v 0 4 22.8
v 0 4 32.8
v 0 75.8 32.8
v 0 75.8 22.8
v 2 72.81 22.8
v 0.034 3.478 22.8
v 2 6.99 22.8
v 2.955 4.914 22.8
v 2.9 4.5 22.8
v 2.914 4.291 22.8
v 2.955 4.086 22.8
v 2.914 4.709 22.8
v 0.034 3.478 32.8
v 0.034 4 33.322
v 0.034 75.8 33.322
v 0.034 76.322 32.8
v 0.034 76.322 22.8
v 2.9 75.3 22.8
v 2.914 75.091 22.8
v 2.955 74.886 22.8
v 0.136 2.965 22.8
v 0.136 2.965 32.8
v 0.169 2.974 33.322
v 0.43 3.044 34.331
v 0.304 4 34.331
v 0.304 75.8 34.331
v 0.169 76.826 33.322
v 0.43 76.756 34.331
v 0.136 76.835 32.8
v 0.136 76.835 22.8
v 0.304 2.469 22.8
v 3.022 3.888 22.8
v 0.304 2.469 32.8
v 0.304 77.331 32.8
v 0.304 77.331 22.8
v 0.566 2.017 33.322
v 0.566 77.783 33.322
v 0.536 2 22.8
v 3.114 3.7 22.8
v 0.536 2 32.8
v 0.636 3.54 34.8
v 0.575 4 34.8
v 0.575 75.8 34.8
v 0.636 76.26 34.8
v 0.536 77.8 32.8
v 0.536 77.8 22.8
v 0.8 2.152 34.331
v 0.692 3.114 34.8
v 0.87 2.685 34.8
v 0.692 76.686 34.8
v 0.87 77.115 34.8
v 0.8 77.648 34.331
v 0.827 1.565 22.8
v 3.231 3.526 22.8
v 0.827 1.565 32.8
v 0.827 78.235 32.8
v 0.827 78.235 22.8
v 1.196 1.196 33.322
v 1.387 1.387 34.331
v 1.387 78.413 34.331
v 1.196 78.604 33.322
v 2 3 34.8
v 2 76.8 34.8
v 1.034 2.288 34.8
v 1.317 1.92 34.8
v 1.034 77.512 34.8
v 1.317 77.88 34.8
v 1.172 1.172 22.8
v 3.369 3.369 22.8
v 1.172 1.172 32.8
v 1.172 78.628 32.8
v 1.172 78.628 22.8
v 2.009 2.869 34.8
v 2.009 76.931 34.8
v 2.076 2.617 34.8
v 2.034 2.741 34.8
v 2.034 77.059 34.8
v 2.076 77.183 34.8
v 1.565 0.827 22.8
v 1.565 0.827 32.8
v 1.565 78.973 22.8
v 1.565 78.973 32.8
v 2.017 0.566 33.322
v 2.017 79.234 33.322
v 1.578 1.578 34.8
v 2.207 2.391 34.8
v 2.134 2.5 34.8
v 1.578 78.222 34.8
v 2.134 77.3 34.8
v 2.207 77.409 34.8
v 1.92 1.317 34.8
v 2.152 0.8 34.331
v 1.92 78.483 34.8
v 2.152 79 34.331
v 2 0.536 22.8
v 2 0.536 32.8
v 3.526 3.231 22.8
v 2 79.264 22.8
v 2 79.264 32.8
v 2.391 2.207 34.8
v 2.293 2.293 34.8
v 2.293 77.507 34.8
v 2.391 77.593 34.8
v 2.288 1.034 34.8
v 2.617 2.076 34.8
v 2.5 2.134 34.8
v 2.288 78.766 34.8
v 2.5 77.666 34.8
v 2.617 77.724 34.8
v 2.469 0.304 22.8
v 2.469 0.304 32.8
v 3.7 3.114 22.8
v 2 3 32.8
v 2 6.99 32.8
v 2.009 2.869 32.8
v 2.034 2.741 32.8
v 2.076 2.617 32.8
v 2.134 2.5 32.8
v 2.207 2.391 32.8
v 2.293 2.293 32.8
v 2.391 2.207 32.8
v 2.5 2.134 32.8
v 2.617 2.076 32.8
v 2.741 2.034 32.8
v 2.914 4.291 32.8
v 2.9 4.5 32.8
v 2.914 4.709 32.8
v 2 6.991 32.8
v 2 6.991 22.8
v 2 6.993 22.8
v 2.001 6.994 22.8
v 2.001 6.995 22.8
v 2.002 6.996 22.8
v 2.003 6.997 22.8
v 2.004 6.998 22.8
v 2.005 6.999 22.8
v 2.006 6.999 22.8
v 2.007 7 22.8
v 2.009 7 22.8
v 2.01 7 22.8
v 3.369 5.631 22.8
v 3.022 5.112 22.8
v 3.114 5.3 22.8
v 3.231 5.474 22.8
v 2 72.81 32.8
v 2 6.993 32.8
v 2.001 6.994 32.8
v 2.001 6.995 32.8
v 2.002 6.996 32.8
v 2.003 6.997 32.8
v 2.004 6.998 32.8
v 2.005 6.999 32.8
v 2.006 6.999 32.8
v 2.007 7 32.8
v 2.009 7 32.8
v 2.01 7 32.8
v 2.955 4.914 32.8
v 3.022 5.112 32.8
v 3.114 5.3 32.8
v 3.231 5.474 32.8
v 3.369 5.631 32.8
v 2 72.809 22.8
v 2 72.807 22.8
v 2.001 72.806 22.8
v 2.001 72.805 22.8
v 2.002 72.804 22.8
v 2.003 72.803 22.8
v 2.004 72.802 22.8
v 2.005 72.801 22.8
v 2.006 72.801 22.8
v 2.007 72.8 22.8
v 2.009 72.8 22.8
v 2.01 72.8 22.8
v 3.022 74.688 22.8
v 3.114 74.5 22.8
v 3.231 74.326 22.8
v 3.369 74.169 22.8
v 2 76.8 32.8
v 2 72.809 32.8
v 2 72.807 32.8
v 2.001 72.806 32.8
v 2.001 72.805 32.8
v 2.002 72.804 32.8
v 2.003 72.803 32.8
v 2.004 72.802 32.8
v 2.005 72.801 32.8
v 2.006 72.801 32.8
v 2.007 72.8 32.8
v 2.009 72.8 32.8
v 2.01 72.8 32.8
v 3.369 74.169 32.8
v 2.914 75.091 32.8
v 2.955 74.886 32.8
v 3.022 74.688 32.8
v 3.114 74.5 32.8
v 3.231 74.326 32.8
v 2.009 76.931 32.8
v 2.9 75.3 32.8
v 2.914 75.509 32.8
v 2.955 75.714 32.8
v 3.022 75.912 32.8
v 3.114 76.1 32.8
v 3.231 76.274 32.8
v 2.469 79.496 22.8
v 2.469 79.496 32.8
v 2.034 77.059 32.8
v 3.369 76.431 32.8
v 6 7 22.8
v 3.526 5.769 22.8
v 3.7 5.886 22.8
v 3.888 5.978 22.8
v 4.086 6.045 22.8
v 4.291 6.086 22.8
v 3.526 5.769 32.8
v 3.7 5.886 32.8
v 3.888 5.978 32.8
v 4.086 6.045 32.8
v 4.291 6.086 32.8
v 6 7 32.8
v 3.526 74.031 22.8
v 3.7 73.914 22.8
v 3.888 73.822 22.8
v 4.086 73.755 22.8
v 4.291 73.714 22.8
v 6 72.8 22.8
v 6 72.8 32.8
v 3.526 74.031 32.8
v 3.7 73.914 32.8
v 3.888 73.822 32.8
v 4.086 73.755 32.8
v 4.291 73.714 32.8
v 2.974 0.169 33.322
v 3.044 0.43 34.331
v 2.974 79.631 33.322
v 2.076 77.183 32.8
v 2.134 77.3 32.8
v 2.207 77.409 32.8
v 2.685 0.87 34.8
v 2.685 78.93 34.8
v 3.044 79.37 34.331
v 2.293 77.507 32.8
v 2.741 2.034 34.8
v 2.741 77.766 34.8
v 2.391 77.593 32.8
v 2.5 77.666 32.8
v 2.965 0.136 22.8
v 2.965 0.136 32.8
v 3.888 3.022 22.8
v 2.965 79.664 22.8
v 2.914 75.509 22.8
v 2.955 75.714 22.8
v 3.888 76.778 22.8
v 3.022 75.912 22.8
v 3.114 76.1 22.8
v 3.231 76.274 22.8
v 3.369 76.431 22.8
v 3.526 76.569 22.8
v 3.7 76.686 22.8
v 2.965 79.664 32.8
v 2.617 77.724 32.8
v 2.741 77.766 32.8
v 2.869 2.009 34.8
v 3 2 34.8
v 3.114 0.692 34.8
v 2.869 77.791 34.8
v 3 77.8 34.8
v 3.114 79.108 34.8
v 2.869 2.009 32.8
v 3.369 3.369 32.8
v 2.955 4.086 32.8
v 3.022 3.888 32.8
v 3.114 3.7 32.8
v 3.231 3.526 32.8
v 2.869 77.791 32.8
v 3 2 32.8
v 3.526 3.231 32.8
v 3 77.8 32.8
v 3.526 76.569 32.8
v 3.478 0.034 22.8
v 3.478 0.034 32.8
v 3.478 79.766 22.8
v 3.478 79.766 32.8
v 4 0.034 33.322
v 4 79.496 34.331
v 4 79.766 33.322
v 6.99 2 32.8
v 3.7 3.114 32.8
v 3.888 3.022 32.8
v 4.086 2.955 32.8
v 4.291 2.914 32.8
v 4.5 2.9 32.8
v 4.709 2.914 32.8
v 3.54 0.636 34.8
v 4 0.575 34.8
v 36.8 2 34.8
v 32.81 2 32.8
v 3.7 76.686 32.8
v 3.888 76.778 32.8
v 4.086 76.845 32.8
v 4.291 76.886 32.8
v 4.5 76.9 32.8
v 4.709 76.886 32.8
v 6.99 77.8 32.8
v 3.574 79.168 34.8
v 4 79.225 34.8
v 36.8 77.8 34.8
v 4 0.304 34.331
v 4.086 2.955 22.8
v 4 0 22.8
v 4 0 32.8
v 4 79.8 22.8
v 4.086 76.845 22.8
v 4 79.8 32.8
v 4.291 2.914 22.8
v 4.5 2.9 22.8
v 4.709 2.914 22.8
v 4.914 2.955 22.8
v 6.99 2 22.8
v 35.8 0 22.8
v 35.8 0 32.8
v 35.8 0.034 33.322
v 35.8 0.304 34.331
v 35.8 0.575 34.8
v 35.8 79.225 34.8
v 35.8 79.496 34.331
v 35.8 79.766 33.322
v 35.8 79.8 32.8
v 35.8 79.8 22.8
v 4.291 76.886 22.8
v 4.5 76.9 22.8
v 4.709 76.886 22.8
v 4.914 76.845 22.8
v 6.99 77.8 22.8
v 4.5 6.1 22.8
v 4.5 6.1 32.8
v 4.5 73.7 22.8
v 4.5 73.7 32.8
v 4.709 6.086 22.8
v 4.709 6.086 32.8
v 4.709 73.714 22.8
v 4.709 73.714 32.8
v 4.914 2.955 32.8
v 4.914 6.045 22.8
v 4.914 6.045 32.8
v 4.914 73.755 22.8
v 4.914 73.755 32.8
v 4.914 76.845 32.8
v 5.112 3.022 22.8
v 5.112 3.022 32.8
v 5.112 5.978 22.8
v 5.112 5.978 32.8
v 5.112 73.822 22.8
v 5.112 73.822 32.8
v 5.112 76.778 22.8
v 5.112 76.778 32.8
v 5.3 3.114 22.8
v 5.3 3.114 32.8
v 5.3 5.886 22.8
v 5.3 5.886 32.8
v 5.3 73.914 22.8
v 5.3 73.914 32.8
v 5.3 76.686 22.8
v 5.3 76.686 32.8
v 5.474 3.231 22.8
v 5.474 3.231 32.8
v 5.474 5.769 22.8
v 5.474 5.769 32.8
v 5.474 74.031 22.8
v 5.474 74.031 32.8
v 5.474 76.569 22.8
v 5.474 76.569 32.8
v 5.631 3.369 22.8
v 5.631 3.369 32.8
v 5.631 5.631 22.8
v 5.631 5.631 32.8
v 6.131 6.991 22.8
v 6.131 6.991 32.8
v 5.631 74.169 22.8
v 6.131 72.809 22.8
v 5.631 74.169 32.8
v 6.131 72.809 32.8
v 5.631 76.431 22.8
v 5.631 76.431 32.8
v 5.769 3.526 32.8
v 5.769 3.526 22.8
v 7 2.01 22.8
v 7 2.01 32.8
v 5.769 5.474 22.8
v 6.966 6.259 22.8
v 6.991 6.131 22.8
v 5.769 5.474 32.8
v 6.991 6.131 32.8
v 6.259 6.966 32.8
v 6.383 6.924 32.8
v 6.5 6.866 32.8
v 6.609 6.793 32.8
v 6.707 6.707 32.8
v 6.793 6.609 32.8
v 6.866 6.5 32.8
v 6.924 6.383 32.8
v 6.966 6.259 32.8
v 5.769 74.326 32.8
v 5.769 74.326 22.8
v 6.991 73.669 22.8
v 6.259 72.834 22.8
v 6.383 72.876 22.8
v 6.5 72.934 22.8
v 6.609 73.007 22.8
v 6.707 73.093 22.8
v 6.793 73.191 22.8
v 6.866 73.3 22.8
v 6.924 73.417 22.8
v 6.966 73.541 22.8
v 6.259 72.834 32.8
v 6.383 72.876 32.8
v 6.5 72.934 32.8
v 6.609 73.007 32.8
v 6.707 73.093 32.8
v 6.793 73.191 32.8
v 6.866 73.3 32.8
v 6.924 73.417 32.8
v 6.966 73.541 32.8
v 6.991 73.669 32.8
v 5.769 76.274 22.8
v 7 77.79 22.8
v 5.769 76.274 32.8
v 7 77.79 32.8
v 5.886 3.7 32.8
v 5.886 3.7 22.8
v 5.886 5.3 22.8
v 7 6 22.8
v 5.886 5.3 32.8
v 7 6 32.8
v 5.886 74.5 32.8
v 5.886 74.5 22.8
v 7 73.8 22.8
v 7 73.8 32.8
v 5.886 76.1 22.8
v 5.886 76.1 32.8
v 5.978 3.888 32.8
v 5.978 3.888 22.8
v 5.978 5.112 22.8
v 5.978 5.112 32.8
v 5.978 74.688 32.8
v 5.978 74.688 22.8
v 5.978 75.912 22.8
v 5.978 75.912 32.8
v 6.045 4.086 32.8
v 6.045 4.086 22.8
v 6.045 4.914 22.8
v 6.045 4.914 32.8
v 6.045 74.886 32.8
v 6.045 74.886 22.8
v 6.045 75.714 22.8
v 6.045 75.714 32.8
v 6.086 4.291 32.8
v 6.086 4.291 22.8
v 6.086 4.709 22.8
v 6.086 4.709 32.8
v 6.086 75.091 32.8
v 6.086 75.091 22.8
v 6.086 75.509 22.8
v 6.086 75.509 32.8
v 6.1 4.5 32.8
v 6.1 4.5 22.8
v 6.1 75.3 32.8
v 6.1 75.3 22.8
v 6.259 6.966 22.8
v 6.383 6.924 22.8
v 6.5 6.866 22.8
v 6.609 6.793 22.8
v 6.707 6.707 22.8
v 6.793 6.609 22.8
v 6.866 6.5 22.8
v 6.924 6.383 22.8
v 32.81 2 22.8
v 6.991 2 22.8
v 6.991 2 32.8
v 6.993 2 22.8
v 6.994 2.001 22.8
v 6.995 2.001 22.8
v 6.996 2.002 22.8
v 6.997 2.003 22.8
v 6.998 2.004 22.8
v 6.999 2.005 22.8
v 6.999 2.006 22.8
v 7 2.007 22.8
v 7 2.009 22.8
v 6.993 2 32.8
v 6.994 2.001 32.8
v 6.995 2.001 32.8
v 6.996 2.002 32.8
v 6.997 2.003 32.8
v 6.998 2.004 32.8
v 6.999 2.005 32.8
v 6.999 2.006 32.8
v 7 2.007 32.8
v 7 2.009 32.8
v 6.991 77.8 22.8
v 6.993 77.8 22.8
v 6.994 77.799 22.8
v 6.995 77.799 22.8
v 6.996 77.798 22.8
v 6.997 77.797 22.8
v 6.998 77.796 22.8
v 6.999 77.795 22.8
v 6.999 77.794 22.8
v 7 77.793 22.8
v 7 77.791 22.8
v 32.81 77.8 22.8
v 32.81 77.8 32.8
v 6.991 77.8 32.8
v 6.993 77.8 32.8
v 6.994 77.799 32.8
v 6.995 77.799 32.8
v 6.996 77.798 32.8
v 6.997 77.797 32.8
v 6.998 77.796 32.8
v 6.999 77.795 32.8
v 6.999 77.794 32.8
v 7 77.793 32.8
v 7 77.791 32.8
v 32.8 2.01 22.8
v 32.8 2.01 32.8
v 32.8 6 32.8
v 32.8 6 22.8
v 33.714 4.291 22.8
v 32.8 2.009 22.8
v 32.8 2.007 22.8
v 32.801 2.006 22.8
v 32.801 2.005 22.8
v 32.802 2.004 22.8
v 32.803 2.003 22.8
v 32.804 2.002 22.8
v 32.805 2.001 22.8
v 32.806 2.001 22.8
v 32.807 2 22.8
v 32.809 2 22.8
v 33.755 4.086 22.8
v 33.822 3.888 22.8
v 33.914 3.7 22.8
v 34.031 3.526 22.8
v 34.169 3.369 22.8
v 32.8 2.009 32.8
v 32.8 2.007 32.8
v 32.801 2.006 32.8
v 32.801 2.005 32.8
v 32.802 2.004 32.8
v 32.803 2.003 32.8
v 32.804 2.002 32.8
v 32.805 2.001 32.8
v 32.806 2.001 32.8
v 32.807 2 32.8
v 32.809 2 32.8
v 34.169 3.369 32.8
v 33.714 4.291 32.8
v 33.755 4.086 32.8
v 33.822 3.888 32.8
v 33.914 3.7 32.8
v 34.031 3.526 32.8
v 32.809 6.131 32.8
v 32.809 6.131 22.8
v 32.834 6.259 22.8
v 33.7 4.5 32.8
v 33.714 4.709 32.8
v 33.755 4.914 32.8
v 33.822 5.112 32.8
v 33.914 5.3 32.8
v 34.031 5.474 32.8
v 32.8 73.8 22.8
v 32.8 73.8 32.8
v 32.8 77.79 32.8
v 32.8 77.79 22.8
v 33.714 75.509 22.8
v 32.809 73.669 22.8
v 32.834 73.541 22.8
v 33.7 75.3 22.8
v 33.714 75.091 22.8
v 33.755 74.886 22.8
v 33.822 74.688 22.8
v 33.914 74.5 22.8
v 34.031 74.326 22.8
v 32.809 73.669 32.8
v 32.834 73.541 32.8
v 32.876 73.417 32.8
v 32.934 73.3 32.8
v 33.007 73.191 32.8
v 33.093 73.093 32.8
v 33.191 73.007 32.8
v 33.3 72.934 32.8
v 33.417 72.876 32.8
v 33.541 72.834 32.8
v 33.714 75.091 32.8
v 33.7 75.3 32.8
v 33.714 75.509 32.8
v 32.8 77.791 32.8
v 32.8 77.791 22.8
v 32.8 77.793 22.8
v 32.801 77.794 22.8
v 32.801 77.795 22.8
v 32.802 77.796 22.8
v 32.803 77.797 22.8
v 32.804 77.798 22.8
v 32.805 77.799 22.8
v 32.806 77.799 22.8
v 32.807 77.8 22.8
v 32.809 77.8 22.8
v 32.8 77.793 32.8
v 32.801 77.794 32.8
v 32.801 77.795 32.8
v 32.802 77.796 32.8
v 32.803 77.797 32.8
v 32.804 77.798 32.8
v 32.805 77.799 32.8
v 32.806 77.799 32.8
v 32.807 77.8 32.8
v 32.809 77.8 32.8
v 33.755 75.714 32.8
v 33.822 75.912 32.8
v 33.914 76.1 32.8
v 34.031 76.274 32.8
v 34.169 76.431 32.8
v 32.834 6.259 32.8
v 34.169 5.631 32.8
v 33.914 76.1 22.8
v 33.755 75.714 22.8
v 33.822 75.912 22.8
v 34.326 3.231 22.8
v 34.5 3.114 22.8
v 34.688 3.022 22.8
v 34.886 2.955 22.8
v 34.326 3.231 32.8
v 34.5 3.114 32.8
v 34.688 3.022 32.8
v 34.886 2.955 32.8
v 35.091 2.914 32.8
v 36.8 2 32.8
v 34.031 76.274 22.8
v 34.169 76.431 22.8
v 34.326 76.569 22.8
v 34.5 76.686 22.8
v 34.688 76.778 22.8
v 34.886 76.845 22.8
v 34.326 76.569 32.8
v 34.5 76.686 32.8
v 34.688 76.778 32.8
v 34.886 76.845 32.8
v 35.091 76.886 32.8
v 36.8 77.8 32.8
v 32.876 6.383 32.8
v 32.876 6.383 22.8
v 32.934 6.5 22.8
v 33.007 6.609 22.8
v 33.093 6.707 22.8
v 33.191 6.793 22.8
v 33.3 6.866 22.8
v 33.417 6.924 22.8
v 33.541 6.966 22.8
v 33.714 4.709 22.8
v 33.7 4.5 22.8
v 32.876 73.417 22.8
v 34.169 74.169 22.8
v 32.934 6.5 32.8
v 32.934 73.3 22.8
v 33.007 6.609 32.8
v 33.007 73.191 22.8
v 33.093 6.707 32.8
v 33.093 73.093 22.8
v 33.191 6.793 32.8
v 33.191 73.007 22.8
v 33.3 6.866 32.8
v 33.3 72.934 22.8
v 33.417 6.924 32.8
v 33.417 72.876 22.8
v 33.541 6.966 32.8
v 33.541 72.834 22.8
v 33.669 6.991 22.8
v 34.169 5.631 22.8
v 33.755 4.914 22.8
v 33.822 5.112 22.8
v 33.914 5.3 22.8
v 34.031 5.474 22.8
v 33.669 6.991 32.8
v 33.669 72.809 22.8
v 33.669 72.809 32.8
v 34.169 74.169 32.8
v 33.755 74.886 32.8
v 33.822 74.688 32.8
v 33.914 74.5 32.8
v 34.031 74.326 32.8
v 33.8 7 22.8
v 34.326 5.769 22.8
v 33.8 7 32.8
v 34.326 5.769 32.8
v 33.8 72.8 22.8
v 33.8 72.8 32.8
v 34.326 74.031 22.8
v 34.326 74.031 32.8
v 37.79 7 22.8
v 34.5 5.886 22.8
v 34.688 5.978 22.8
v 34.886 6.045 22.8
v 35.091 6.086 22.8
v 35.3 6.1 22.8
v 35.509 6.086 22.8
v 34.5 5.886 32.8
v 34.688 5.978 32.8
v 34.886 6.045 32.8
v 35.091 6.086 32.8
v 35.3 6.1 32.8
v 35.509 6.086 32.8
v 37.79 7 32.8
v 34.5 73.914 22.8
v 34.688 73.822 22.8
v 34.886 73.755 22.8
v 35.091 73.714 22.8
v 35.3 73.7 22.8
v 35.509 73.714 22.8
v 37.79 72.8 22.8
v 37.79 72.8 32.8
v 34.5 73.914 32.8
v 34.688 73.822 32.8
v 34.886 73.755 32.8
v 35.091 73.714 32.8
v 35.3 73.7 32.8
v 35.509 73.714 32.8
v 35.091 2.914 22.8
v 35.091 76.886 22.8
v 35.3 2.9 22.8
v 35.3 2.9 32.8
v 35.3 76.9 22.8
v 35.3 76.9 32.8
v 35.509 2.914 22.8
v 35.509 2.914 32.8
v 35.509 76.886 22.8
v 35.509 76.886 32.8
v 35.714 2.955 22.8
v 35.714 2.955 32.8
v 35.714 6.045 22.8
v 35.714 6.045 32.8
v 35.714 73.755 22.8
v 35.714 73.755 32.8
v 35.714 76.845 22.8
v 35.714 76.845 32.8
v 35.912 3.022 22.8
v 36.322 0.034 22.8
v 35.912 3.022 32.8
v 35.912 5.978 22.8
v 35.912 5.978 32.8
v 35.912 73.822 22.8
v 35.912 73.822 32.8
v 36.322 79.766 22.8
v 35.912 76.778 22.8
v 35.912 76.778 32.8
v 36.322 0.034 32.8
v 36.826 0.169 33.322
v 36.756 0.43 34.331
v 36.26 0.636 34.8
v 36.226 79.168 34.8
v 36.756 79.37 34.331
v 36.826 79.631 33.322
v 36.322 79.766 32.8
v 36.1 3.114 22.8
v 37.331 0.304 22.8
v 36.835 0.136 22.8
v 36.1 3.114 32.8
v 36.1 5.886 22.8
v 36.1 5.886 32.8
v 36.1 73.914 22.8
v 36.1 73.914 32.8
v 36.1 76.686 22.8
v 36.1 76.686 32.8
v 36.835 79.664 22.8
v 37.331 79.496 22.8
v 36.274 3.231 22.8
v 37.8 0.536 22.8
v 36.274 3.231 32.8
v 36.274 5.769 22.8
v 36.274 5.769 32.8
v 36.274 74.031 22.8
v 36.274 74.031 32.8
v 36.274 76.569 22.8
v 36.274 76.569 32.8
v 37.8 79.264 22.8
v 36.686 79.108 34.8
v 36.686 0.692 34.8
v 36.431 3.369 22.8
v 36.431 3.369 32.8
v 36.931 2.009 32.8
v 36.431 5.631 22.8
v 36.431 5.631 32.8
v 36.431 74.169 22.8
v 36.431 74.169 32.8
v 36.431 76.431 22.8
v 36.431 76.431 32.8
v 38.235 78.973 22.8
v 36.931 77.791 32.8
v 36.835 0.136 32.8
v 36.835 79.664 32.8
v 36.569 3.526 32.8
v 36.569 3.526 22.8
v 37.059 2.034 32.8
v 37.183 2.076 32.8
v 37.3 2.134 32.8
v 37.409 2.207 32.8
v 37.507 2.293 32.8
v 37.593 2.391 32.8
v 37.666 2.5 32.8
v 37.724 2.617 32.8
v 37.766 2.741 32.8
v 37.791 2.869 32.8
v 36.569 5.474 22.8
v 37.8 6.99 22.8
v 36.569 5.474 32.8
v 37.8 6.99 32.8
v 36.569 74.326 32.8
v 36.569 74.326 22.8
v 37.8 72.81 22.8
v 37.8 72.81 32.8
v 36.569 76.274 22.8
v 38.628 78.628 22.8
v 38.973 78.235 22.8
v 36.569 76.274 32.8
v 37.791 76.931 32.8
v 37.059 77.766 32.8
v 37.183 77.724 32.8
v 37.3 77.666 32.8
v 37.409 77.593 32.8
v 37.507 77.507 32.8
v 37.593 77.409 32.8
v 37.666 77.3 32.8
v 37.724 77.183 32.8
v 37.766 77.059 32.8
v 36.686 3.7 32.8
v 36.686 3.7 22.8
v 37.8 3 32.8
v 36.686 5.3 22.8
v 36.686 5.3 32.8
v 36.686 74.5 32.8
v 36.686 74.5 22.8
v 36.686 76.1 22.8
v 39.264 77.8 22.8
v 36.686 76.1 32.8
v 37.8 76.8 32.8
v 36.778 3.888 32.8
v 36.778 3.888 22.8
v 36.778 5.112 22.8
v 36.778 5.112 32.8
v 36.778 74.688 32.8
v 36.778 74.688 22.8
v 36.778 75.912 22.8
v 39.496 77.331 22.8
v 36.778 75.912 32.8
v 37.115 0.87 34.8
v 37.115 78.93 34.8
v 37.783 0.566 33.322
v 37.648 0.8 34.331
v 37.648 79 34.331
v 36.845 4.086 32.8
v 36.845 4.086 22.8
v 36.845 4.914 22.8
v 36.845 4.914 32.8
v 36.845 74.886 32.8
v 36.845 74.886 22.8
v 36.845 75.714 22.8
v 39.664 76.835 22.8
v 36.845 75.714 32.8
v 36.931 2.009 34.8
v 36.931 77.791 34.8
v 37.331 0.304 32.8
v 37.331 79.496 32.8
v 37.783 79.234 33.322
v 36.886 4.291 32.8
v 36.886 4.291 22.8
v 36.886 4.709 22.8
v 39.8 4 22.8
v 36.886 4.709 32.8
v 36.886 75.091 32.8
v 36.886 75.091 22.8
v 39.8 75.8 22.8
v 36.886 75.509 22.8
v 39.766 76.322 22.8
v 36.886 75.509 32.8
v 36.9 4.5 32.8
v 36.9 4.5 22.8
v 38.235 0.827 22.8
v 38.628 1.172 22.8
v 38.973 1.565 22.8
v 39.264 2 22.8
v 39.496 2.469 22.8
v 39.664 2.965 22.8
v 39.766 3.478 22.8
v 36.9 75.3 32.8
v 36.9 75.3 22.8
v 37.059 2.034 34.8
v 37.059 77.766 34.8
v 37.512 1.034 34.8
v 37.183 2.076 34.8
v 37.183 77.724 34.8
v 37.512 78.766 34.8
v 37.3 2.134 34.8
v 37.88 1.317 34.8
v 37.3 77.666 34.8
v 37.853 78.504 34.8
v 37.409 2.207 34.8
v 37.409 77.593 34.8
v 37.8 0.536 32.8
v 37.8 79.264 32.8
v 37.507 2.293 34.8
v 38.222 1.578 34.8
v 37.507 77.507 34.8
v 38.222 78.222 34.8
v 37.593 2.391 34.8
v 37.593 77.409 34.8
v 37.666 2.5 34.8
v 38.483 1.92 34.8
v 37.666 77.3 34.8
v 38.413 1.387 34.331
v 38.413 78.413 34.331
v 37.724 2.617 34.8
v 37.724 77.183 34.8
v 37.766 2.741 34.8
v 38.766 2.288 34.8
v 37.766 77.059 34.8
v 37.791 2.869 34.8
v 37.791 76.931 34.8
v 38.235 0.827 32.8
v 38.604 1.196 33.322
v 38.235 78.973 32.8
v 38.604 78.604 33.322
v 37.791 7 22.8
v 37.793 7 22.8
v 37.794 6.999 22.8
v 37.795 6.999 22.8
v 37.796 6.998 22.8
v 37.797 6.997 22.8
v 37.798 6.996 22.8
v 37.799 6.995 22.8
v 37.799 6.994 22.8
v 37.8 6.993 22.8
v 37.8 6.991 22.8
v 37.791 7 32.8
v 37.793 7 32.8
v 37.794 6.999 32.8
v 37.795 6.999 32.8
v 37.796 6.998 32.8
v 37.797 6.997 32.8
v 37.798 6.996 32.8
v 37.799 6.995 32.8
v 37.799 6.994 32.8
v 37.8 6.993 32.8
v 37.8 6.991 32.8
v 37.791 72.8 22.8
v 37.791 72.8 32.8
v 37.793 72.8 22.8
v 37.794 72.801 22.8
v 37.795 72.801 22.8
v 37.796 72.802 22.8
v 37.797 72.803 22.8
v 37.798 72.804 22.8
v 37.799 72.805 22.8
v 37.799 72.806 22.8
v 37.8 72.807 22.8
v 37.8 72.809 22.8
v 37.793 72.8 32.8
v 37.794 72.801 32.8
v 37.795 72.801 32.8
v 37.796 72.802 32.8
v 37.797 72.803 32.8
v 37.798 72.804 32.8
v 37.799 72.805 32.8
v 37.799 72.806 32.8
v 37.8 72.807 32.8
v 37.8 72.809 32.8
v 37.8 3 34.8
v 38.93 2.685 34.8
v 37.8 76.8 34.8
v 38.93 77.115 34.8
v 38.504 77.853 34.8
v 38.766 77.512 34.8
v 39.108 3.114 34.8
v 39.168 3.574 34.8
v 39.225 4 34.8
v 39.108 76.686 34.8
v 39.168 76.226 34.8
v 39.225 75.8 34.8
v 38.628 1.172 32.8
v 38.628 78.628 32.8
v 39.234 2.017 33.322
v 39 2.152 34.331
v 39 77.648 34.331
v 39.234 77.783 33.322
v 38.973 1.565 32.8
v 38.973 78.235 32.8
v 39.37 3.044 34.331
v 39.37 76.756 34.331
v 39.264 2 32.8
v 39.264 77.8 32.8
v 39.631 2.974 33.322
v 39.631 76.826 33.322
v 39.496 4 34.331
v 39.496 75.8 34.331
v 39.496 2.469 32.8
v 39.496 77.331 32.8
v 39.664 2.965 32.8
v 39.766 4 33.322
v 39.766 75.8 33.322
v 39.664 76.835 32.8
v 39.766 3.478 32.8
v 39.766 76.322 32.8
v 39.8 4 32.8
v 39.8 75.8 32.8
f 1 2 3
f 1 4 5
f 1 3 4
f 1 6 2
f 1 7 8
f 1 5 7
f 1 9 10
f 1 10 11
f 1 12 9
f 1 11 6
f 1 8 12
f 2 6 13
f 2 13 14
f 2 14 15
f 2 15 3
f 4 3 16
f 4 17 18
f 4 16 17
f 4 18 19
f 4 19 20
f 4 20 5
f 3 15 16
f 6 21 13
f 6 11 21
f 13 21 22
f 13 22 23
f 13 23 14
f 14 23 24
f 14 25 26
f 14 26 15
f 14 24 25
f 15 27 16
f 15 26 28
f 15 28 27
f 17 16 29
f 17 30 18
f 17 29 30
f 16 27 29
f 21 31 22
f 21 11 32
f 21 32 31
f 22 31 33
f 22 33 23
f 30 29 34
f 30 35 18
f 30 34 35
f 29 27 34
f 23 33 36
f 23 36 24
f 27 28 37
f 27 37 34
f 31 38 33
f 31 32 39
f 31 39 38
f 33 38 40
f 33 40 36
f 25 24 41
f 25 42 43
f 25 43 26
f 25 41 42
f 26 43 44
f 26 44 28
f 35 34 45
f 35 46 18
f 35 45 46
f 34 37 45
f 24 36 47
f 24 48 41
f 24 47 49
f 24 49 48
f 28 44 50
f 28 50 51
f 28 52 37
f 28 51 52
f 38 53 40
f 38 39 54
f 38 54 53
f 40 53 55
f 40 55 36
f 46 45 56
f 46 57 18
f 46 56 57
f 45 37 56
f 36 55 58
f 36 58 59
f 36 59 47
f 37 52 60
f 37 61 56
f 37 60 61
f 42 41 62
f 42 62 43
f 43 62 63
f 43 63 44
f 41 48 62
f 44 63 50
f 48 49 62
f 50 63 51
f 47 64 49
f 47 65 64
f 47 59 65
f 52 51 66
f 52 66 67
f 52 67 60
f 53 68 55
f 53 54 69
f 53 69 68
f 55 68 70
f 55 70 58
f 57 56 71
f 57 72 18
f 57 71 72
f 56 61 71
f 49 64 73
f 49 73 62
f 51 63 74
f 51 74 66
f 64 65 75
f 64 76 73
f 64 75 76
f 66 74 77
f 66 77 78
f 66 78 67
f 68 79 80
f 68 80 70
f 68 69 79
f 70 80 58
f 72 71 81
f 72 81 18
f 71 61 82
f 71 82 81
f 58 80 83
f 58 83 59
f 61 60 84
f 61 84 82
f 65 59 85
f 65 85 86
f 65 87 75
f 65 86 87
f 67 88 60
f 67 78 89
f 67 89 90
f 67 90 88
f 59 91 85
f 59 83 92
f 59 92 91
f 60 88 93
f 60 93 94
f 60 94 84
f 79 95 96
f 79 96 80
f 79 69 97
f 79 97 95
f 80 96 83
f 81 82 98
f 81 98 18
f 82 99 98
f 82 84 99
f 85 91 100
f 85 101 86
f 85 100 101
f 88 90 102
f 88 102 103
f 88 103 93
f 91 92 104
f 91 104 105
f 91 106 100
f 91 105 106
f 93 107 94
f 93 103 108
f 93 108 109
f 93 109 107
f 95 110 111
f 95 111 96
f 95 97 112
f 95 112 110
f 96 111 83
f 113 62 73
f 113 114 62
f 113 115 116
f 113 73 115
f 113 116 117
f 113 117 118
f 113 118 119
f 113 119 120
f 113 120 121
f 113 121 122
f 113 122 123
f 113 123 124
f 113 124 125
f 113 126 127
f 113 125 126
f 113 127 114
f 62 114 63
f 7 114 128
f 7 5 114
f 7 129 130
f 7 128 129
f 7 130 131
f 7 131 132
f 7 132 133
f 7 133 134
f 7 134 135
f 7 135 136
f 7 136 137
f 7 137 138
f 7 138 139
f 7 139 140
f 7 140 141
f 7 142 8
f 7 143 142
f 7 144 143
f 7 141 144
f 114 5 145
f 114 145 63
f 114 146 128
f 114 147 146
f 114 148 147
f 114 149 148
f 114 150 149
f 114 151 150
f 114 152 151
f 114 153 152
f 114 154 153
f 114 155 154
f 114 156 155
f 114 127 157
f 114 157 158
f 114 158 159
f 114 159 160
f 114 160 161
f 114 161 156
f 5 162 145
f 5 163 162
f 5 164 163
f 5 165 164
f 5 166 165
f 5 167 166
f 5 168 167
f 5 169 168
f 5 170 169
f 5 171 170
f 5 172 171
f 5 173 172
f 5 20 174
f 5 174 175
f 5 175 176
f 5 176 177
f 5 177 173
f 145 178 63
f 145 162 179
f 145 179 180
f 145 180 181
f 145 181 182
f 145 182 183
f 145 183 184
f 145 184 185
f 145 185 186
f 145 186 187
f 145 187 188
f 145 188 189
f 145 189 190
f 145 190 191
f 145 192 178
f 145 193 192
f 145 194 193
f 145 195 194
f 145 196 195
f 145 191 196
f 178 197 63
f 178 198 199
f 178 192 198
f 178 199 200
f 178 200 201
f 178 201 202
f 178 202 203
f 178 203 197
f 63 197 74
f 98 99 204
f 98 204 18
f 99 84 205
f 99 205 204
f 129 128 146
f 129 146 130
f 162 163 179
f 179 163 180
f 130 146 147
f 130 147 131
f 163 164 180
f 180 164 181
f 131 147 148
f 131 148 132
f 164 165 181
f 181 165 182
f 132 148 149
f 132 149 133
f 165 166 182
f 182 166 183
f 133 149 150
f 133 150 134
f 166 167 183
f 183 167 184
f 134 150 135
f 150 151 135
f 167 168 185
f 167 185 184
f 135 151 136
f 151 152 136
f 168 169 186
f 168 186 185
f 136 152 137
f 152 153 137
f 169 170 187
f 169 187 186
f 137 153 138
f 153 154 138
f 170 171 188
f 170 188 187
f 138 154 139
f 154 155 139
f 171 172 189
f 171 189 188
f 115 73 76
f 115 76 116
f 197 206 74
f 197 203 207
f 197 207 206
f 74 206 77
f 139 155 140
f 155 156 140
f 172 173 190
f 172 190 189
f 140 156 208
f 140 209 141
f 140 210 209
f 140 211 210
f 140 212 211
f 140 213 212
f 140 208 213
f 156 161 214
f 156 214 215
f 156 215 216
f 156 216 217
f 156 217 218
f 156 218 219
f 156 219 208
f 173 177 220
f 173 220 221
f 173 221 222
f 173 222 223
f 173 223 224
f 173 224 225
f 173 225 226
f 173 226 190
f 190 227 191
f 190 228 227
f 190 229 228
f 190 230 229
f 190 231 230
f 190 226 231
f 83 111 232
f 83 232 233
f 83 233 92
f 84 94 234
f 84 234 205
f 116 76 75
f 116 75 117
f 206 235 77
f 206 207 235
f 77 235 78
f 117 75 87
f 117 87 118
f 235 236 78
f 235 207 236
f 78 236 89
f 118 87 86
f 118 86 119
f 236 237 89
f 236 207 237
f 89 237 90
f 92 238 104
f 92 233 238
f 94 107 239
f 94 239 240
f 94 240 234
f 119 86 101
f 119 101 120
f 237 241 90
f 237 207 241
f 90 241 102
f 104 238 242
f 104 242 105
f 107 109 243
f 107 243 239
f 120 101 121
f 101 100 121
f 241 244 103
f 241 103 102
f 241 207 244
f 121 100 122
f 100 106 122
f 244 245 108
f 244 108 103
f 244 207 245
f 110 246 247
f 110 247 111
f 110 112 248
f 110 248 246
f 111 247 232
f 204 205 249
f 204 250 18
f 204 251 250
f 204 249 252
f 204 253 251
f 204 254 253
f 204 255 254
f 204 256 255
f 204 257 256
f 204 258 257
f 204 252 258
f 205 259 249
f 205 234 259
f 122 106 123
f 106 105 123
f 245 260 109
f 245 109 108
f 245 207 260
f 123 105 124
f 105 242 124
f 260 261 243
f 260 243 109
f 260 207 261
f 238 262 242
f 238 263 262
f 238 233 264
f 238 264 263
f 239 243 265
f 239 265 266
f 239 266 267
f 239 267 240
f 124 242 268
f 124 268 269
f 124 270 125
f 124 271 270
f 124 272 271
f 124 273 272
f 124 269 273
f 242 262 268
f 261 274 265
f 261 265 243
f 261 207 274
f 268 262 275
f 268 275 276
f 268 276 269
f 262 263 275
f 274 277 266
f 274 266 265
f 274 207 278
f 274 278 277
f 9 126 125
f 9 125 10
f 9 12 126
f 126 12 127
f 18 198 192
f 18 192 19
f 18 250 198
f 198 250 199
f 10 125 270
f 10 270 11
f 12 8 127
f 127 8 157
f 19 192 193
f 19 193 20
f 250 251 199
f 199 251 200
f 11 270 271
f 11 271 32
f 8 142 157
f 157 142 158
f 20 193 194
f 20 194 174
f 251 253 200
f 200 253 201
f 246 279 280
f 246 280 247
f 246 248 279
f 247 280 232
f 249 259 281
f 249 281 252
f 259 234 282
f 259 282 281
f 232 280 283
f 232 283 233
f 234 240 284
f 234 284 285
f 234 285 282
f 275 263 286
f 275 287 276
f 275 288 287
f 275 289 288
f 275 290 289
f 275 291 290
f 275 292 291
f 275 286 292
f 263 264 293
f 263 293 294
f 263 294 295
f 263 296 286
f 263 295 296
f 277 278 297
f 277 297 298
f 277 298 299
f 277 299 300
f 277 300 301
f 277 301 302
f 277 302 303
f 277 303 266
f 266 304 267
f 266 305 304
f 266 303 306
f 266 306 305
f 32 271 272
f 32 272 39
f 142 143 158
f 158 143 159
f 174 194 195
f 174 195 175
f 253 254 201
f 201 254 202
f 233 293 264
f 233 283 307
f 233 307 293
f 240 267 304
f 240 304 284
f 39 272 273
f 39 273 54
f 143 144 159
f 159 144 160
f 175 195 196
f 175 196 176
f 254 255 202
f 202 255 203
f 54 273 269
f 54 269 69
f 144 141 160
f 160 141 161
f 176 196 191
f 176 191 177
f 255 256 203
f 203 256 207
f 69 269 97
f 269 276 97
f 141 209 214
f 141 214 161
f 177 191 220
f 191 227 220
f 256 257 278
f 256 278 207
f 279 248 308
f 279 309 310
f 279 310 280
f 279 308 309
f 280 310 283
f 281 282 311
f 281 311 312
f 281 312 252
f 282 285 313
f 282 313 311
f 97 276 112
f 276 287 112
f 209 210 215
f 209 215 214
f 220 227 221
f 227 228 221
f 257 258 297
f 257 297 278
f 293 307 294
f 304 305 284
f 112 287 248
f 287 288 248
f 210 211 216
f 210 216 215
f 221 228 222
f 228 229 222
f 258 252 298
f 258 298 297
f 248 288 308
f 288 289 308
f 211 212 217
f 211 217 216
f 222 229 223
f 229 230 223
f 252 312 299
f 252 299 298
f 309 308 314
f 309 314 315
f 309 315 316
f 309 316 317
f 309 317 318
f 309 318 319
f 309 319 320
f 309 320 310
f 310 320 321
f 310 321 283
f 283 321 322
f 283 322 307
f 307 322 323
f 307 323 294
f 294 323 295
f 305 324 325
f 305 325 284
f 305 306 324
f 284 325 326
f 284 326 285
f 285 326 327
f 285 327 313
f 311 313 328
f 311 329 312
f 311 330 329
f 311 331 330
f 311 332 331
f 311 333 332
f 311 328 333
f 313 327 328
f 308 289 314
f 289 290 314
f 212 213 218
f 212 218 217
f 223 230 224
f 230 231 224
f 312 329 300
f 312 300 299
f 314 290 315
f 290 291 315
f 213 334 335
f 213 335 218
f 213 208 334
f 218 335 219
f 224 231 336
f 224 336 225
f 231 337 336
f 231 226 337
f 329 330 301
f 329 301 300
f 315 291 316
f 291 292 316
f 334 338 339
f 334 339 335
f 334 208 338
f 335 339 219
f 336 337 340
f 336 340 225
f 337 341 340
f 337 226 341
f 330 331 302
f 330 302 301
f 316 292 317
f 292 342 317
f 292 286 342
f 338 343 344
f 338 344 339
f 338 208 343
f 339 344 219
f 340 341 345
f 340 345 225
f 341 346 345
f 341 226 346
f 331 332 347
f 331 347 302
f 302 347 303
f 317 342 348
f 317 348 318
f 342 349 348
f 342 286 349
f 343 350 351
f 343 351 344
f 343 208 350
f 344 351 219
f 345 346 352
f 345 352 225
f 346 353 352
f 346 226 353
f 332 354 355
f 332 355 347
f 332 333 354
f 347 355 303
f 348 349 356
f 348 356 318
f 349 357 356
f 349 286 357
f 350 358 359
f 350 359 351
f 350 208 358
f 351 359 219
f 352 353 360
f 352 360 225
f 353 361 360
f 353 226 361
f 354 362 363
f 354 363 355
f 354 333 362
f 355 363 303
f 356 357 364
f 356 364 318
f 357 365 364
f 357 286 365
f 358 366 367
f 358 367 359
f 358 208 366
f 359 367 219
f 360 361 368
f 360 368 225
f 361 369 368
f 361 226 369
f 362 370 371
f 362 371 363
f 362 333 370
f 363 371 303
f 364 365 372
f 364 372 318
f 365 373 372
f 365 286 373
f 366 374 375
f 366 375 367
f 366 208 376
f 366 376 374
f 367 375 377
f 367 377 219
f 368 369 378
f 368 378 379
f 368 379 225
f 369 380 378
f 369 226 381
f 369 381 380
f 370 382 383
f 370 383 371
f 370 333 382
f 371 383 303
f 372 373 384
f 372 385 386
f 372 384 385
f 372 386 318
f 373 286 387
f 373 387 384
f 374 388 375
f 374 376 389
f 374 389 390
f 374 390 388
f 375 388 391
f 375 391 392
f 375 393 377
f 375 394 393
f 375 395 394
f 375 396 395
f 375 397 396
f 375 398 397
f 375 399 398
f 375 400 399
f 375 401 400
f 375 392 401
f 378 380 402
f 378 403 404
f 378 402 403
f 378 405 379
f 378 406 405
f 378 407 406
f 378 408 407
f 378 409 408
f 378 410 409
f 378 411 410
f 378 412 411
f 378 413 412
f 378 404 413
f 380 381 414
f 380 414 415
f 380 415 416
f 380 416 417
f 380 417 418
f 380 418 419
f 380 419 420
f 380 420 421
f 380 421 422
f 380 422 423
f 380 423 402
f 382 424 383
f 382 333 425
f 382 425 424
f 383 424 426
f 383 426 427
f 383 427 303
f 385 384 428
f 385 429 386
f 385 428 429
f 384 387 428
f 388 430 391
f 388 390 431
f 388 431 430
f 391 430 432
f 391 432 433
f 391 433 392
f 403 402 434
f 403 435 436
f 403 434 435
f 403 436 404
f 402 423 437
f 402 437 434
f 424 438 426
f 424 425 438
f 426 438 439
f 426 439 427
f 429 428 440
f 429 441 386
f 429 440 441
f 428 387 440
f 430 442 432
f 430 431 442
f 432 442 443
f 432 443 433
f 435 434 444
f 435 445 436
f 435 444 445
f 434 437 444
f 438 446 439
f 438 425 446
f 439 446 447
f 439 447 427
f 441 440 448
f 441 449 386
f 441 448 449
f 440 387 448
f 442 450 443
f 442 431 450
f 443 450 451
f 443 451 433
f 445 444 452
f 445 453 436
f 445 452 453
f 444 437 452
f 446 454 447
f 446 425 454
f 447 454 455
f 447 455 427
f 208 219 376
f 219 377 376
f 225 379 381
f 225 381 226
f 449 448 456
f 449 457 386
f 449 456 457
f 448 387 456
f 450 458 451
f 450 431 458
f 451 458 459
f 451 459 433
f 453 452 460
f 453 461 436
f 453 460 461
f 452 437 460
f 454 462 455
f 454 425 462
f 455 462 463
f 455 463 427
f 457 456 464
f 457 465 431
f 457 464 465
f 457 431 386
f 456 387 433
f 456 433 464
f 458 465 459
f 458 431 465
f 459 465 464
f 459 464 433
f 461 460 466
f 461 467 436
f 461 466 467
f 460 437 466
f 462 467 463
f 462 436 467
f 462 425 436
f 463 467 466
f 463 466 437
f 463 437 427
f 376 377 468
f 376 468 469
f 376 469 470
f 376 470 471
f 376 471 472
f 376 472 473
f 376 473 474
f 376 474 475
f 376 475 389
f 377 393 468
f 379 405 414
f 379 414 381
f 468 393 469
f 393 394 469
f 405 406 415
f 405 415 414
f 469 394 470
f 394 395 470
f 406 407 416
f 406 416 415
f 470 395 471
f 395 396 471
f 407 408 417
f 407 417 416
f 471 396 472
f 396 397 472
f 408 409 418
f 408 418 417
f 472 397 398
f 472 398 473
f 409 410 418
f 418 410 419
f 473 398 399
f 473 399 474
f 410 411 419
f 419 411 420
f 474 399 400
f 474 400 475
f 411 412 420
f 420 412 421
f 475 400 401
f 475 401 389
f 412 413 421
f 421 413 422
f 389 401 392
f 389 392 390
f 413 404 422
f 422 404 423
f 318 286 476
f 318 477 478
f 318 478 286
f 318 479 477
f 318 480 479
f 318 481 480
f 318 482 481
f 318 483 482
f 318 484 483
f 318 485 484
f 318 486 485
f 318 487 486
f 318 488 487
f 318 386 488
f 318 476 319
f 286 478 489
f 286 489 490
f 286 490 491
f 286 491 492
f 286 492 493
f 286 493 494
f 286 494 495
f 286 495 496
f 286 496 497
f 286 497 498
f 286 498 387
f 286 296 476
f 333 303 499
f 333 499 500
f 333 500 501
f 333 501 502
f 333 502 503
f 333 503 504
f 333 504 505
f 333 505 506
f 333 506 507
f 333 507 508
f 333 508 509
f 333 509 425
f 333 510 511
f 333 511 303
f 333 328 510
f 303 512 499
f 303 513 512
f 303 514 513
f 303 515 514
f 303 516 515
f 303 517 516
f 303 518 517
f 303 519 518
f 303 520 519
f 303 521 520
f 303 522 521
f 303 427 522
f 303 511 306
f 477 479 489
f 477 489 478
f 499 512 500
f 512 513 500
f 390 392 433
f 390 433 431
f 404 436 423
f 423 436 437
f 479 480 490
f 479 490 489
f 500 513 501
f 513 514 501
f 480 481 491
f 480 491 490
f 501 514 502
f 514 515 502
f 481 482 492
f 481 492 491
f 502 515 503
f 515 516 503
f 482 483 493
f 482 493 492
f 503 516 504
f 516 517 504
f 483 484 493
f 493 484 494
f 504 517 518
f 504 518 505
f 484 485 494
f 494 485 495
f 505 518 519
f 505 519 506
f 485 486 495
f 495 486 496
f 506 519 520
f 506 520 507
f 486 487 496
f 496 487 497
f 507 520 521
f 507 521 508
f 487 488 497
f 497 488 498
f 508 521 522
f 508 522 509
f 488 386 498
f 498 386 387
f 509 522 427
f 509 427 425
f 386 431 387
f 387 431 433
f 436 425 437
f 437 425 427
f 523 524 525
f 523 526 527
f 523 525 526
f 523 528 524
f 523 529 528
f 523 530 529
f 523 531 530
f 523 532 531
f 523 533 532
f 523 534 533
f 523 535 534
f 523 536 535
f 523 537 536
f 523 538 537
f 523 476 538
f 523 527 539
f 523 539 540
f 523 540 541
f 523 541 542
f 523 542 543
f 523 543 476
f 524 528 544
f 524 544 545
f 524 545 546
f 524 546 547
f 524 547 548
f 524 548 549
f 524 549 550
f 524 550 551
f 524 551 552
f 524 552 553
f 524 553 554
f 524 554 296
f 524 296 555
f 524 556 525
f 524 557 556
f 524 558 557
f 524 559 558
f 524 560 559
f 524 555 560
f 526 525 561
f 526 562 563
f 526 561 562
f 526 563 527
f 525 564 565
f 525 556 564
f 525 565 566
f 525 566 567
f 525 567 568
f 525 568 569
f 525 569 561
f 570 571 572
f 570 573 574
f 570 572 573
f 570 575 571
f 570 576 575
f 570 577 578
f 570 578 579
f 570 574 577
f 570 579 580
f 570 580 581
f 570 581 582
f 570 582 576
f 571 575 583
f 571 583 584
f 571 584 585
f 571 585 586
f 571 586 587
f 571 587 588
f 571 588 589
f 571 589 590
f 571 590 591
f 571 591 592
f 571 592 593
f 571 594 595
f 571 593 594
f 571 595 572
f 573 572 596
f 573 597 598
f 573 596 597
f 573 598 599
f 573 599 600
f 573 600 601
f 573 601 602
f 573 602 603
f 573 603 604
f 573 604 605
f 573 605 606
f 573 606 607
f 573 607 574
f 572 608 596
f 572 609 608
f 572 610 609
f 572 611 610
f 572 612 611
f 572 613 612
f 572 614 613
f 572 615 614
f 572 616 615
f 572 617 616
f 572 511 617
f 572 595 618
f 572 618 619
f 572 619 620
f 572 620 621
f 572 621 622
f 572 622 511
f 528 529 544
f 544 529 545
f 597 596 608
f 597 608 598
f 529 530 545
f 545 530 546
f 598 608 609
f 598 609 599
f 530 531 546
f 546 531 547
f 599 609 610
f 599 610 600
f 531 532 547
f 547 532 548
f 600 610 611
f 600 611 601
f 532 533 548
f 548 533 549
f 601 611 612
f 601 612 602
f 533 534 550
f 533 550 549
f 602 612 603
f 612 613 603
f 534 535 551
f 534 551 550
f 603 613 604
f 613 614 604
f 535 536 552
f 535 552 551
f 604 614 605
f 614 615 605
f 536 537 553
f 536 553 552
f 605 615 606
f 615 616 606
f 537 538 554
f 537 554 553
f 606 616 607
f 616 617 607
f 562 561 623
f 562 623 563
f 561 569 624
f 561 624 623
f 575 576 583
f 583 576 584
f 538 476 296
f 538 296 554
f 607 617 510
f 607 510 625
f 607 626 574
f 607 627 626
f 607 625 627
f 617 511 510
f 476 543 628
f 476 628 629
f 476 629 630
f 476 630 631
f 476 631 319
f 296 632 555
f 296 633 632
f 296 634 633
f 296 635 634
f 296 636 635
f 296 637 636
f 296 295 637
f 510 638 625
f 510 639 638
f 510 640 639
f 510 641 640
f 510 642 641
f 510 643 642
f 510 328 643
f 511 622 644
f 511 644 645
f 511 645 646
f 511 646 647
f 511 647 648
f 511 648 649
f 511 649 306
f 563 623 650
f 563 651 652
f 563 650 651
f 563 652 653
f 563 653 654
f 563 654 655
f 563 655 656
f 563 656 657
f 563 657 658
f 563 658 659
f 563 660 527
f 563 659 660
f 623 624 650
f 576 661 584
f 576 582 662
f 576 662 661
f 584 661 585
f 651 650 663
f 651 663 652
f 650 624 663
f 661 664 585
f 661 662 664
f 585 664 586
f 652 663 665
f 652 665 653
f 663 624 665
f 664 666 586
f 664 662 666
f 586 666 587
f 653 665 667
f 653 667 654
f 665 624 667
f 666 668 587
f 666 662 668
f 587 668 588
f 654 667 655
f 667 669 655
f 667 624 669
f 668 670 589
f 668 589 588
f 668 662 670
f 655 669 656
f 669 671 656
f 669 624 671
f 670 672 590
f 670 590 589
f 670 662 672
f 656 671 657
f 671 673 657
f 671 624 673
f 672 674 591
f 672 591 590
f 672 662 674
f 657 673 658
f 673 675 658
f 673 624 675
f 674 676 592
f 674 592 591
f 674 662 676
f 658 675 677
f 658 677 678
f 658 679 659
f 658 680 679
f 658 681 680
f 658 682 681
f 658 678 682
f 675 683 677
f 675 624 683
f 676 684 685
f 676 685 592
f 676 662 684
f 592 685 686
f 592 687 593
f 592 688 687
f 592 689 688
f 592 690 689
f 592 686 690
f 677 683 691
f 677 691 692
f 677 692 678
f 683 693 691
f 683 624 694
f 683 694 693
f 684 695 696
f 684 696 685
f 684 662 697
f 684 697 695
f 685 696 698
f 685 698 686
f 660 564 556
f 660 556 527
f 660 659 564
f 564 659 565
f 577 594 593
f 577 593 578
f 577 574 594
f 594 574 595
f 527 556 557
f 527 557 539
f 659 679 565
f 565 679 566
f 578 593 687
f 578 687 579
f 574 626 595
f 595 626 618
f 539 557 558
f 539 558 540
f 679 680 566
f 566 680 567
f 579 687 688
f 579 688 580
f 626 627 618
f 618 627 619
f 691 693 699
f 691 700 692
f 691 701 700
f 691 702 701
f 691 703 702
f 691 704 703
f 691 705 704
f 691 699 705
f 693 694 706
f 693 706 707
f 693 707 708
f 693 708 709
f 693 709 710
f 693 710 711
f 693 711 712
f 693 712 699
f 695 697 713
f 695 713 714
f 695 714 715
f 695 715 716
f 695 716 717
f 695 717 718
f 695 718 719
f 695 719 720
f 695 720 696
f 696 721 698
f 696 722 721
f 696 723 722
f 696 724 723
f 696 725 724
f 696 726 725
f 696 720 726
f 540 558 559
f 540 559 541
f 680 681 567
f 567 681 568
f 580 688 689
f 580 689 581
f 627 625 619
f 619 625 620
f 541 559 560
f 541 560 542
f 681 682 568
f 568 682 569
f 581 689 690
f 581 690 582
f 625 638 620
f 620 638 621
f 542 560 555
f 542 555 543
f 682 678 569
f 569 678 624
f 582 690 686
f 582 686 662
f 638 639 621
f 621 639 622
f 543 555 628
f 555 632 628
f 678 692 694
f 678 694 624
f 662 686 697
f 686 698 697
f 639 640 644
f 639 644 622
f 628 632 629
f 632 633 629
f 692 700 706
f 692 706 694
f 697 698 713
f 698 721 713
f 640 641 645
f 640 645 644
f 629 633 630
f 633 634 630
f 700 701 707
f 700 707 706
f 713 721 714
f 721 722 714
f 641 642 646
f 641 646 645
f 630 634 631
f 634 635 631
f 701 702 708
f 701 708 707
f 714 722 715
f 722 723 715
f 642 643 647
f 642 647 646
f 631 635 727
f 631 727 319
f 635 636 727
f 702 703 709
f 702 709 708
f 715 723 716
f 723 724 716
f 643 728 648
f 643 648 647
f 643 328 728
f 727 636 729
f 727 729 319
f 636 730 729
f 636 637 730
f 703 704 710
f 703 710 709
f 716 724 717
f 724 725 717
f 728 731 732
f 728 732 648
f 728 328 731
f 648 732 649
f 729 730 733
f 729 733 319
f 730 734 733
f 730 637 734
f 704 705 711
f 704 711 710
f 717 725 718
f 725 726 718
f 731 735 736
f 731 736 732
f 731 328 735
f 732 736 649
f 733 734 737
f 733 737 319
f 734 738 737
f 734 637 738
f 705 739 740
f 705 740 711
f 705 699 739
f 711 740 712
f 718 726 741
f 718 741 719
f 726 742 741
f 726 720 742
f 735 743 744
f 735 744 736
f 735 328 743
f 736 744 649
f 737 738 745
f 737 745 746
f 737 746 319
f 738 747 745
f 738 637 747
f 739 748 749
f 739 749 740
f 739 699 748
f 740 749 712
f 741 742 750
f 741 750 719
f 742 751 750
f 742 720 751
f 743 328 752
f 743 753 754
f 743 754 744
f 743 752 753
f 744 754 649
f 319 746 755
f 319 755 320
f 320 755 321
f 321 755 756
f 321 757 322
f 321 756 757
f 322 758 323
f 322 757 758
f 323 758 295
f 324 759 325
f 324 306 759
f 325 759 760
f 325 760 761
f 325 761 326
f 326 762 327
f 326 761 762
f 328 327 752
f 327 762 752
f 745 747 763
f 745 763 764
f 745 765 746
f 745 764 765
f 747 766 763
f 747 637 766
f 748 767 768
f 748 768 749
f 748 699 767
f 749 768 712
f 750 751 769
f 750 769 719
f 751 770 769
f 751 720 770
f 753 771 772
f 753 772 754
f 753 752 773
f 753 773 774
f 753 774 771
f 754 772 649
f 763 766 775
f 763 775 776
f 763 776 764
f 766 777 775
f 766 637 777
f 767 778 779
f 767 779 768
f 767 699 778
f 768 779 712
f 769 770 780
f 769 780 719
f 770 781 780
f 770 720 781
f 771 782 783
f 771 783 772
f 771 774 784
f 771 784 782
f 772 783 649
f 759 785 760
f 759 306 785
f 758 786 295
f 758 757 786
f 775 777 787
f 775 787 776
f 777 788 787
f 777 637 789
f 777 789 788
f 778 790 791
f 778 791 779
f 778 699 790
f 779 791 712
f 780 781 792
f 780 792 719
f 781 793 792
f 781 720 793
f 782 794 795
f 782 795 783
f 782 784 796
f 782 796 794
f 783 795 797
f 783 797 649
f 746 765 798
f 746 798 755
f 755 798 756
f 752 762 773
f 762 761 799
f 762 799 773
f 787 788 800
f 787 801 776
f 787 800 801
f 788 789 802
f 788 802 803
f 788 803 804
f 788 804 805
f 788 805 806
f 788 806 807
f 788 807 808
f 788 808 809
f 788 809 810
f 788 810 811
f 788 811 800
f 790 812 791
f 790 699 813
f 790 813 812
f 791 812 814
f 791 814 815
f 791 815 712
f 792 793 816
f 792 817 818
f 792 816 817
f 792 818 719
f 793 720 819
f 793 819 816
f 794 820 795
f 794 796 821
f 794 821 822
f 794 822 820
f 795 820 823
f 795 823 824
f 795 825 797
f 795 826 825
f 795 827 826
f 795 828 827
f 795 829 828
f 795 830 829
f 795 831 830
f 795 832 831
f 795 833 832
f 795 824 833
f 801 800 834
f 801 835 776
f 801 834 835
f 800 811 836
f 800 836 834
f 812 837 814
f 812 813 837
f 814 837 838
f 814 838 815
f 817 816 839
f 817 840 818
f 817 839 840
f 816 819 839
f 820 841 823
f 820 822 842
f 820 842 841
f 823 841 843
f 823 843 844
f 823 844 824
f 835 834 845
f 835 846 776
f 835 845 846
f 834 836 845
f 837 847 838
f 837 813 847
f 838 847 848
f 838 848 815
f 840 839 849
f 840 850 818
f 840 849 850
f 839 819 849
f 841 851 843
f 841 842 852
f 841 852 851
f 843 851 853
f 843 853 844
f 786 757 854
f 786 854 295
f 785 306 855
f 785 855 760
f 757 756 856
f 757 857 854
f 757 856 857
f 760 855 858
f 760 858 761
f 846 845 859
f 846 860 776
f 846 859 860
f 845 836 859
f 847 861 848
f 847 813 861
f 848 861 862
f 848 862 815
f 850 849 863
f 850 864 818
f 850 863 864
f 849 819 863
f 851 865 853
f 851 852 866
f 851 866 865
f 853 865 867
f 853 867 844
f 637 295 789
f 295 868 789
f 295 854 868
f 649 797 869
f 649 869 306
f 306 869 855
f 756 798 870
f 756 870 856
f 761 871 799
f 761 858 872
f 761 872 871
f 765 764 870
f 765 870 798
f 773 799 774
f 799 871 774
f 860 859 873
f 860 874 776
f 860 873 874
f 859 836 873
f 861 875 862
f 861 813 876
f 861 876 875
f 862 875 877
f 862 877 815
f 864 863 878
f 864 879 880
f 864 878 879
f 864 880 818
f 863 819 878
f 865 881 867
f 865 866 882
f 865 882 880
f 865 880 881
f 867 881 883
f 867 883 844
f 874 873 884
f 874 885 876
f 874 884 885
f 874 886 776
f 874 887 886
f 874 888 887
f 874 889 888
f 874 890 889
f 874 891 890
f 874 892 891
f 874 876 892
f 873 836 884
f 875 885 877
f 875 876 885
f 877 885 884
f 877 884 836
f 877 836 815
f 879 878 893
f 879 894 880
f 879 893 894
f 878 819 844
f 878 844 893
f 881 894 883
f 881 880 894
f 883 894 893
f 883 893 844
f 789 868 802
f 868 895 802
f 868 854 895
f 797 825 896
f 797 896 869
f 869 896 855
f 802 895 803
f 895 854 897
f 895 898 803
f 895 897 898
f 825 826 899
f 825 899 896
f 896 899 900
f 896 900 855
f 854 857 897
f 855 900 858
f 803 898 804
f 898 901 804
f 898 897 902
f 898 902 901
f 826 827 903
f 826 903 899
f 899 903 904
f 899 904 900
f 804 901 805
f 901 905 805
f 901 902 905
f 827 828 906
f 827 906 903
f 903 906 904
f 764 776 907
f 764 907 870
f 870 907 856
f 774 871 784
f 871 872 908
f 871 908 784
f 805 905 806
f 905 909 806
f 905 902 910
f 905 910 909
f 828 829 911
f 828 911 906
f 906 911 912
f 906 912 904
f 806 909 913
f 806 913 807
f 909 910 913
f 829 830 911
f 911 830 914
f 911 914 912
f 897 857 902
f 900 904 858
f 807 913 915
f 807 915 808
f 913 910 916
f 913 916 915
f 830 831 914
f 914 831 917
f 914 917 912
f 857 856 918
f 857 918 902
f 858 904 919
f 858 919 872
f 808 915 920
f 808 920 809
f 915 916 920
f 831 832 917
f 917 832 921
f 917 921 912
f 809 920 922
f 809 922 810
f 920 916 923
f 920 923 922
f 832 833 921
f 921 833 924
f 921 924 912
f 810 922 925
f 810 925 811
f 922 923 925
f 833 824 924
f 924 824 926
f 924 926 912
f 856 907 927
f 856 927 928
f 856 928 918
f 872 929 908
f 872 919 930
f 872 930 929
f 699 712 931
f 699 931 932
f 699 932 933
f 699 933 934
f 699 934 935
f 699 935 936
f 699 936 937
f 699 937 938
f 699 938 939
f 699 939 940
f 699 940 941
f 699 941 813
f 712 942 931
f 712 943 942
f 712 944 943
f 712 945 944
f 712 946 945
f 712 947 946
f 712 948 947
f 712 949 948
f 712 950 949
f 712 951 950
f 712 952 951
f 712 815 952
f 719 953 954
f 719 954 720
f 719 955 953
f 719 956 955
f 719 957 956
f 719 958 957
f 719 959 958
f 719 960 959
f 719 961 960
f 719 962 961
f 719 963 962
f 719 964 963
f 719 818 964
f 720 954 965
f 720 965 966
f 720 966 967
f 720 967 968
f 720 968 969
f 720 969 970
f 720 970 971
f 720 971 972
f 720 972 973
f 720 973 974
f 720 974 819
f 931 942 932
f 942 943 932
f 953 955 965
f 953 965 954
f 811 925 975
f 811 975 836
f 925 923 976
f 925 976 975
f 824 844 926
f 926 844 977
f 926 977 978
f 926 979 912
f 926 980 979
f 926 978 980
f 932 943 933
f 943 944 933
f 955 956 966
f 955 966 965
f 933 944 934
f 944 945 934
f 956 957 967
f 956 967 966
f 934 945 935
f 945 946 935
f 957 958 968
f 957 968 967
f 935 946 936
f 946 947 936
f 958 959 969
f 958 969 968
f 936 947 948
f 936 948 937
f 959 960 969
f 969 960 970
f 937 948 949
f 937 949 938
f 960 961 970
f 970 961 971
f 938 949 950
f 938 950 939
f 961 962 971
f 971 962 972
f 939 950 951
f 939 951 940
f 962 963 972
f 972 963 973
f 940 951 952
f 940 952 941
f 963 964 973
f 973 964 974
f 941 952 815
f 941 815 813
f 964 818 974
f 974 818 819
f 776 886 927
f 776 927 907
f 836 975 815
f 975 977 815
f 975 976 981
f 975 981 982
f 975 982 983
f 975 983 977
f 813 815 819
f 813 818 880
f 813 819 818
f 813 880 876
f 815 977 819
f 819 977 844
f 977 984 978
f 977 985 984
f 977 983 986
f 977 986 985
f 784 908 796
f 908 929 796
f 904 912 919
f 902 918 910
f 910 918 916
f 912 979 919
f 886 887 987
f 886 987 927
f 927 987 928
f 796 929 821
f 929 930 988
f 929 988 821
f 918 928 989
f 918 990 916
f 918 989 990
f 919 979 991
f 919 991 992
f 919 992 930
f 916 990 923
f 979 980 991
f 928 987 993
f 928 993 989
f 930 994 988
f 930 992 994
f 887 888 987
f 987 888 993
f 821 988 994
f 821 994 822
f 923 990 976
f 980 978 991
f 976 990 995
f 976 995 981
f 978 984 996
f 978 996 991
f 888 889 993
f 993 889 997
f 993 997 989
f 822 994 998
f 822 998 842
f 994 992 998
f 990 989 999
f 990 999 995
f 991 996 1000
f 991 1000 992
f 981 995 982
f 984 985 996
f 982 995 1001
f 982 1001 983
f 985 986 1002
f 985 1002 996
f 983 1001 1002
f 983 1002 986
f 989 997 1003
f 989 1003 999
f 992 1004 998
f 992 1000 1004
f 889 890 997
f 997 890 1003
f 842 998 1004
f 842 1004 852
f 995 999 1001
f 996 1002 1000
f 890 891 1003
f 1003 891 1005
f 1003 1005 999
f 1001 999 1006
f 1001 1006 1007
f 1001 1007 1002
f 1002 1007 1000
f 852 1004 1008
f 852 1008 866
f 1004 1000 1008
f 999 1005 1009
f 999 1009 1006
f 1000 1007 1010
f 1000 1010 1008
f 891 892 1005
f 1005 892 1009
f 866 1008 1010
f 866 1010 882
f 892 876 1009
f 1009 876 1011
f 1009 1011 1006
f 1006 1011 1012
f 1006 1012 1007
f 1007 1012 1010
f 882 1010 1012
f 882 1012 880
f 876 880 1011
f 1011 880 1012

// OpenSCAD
// Dilder Top Cover v3 — open border frame with rounded inner corners for flush plate seating
//
// No dome, no floor — just the perimeter wall ring + 4 corner pillar posts.
// Solid border all around (no wire notch).
// Inner corners and countersink pocket are rounded to match the windowed plate's corner radius,
// allowing it to slide in flush at the pillar junctions.
//
// Export:
//   openscad -o top-cover-v3.3mf top-cover-v3.scad

$fn = 48;

// ---- Board (Olimex ESP32-S3-DevKit-Lipo) ----
board_len      = 56;
board_wid      = 28;
antenna_proj   = 6;

// ---- Waveshare 2.13" display ----
disp_len       = 65;
disp_wid       = 30;
disp_thk       = 5;

// ---- 1000 mAh battery ----
bat_len        = 52;
bat_wid        = 35;

// ---- Enclosure geometry ----
wall_thk       = 2;
plate_thk      = 2;
pillar         = 5;
slop           = 0.4;
bat_chamber_h  = 6;
disp_clear     = 1;
board_thk      = 1.6;
wroom_h        = 3.2;
top_gap        = 10;       // +5mm height

screw_clr      = 3.2;

// ---- Rounding ----
case_corner_r  = 4;
plate_corner_r = 1;       // must match windowed plate's corner radius
top_edge_r     = 2;       // top edge bullnose radius

// ---- Z layout ----
z_base_top     = plate_thk;
z_mid_bot      = z_base_top + bat_chamber_h;
z_mid_top      = z_mid_bot + plate_thk;
z_board_bot    = z_mid_top;
z_board_top    = z_board_bot + board_thk;
z_wroom_top    = z_board_top + wroom_h;
z_disp_bot     = z_wroom_top + disp_clear;
z_disp_top     = z_disp_bot + disp_thk;
base_wall_top  = z_disp_top + plate_thk;
z_cover_bot    = base_wall_top;
cover_h        = plate_thk + top_gap;

// ---- XY layout ----
inner_wid      = max(board_wid, disp_wid, bat_wid) + 2 * slop;
inner_len      = max(board_len + antenna_proj, disp_len + 2 * pillar, bat_len) + 2 * slop;
outer_wid      = inner_wid + 2 * wall_thk;
outer_len      = inner_len + 2 * wall_thk;

pillar_xy = [
    [wall_thk,                             wall_thk                            ],
    [outer_wid - wall_thk - pillar,        wall_thk                            ],
    [wall_thk,                             outer_len - wall_thk - pillar       ],
    [outer_wid - wall_thk - pillar,        outer_len - wall_thk - pillar       ],
];


// ============== SHARED ==============

module rounded_v_box(w, l, h, r, fn = 48) {
    hull() {
        for (x = [r, w - r])
            for (y = [r, l - r])
                translate([x, y, 0])
                    cylinder(r = r, h = h, $fn = fn);
    }
}

// Pillar with only one corner rounded (the exposed inner corner).
// round_x/round_y: 0=near edge, 1=far edge — selects which corner gets the radius.
module pillar_one_round(w, l, h, r, round_x, round_y) {
    tiny = 0.01;
    hull() {
        for (ix = [0, 1])
            for (iy = [0, 1]) {
                cr = (ix == round_x && iy == round_y) ? r : tiny;
                translate([cr + ix * (w - 2*cr), cr + iy * (l - 2*cr), 0])
                    cylinder(r = cr, h = h, $fn = 48);
            }
    }
}


// ============== TOP COVER v3 ==============

module top_cover() {
    translate([0, 0, z_cover_bot])
    difference() {
        union() {
            // Outer wall ring — rounded outer edges, bullnose top, rounded inner edges
            difference() {
                // Outer shell with rounded top edge
                intersection() {
                    hull() {
                        for (x = [case_corner_r, outer_wid - case_corner_r])
                            for (y = [case_corner_r, outer_len - case_corner_r]) {
                                translate([x, y, 0])
                                    cylinder(r = case_corner_r, h = cover_h - top_edge_r, $fn = 48);
                                translate([x, y, cover_h - top_edge_r])
                                    sphere(r = case_corner_r, $fn = 24);
                            }
                    }
                    // Clip bottom flat
                    cube([outer_wid, outer_len, cover_h]);
                }
                // Inner cavity with rounded corners
                translate([wall_thk, wall_thk, -0.1])
                    rounded_v_box(inner_wid, inner_len, cover_h + 0.2, plate_corner_r);
            }

            // Pillar posts — only the exposed inner corner is rounded
            for (p = pillar_xy) {
                rx = (p[0] < outer_wid/2) ? 1 : 0;
                ry = (p[1] < outer_len/2) ? 1 : 0;
                translate([p[0], p[1], 0])
                    pillar_one_round(pillar, pillar, cover_h, plate_corner_r, rx, ry);
            }
        }

        // Countersink — single rounded pocket matching plate footprint
        // Cuts into pillar tops with rounded inner corners so plate seats flush
        translate([wall_thk, wall_thk, cover_h - plate_thk])
            rounded_v_box(inner_wid, inner_len, plate_thk + 0.1, plate_corner_r);

        // Screw clearance holes through pillars
        for (p = pillar_xy) {
            cx = p[0] + pillar/2;
            cy = p[1] + pillar/2;
            translate([cx, cy, -0.1])
                cylinder(h = cover_h + 0.2, d = screw_clr);
        }
    }
}

top_cover();
